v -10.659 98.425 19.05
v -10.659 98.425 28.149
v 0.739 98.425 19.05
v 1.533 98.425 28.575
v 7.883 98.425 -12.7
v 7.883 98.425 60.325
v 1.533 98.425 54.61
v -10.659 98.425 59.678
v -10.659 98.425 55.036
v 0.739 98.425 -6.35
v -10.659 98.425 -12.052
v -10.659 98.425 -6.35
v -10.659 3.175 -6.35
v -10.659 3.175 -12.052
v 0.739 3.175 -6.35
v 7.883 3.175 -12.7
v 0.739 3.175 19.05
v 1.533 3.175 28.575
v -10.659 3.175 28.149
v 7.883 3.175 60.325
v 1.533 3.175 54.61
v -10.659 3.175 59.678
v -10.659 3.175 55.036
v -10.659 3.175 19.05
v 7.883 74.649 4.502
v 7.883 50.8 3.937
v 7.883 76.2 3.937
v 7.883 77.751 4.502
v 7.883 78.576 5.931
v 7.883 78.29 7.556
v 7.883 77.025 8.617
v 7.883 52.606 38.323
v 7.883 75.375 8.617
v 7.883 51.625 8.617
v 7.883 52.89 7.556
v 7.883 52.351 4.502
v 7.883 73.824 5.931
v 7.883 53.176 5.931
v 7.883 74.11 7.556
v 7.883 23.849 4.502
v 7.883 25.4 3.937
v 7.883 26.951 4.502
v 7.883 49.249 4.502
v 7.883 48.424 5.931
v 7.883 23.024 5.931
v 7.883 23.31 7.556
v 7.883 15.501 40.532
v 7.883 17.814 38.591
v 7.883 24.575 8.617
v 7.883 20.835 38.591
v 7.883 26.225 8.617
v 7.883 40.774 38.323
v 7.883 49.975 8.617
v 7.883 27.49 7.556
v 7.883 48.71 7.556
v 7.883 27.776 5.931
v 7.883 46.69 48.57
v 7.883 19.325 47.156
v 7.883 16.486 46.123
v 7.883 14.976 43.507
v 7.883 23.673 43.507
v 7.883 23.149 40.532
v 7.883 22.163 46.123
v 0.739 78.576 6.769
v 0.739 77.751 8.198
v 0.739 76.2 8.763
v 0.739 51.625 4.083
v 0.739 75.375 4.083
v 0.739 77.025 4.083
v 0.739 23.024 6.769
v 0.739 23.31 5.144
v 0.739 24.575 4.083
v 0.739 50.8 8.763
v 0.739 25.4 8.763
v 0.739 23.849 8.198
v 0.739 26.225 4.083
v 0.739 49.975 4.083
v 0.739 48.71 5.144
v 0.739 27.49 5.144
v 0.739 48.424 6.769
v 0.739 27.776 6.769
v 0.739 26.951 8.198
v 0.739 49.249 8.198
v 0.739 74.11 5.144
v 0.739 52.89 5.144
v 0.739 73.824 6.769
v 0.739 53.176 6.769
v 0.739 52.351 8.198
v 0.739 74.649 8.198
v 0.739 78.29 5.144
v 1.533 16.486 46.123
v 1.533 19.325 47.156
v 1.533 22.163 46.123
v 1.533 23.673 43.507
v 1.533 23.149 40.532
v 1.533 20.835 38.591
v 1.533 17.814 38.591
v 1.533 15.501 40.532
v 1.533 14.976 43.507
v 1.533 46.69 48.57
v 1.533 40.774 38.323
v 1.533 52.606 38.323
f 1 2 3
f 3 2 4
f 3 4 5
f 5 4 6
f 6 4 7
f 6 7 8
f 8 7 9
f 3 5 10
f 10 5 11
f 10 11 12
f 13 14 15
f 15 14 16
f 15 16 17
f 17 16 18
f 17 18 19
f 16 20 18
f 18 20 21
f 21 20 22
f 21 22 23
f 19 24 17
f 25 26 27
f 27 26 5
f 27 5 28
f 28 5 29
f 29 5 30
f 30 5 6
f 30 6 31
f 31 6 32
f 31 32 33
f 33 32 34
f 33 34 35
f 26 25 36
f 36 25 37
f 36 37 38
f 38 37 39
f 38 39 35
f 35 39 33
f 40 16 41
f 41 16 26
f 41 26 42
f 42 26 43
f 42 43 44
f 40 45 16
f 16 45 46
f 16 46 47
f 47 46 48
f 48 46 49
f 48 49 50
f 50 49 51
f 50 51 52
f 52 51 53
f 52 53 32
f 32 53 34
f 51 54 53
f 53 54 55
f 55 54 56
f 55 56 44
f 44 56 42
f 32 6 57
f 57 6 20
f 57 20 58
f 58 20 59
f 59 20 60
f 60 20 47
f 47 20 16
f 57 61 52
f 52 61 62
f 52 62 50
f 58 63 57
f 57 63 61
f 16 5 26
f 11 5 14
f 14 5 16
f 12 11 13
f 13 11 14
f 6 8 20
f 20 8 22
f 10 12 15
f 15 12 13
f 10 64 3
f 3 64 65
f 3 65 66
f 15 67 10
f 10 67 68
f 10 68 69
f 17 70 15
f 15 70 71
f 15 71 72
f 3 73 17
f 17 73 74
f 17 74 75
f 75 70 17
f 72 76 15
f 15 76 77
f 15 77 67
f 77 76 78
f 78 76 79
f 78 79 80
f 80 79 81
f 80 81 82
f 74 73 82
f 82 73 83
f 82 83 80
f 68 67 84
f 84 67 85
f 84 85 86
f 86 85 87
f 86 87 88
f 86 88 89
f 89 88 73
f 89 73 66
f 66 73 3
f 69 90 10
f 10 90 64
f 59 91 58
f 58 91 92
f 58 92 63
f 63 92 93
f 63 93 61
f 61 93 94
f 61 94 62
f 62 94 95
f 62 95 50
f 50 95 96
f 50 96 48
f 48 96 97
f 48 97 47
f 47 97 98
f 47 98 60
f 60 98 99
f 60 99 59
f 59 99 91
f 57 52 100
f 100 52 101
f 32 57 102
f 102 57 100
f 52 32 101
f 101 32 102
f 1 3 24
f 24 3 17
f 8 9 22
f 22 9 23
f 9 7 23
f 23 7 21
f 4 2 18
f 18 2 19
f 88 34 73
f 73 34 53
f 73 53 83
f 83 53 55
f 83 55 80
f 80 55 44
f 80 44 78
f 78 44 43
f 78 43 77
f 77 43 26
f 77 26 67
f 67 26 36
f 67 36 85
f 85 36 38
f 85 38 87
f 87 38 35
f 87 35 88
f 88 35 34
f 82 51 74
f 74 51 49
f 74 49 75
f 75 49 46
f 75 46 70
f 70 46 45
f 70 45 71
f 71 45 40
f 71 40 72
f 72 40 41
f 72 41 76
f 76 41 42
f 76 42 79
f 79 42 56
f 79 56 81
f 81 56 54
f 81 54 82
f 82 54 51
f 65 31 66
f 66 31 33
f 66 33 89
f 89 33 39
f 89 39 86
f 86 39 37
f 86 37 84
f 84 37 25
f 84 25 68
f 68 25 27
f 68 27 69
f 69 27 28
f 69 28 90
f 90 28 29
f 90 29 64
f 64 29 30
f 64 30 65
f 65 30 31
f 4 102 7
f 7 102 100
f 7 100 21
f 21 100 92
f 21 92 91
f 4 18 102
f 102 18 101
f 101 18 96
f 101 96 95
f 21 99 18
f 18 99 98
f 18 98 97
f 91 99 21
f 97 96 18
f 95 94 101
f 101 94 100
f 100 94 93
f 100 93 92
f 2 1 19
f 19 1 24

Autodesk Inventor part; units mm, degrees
ref_plane "YZ Plane" through (0, 0, 0) normal (1, 0, 0) x (0, 1, 0)
ref_plane "XZ Plane" through (0, 0, 0) normal (0, 1, 0) x (-1, 0, 0)
ref_plane "XY Plane" through (0, 0, 0) normal (0, 0, 1) x (1, 0, 0)
sketch "Sketch1" plane through (0, 0, 0) normal (0, 1, 0) x (-1, 0, 0)
  line L0 (10.6592, 60.325) -> (-7.8828, 60.325)
  line L1 (-7.8828, 60.325) -> (-7.8828, -12.7)
  line L2 (-7.8828, -12.7) -> (10.6592, -12.7)
  line L3 (10.6592, 54.61) -> (-1.5328, 54.61)
  line L4 (-1.5328, 54.61) -> (-1.5328, 28.575)
  line L5 (-1.5328, 28.575) -> (10.6592, 28.575)
  line L6 (10.6592, 19.05) -> (-1.5328, 19.05)
  line L7 (-1.5328, 19.05) -> (-1.5328, -6.35)
  line L8 (-1.5328, -6.35) -> (10.6592, -6.35)
  line L9 (10.6592, -12.7) -> (10.6592, -6.35)
  line L10 (10.6592, 19.05) -> (10.6592, 28.575)
  line L11 (10.6592, 54.61) -> (10.6592, 60.325)
  point P0 (0, 0)
  dimension "d0" = 18.542
  dimension "d3" = 6.35
  dimension "d4" = 9.525
  dimension "d5" = 5.715
  dimension "d7" = 0
  dimension "d8" = 26.035
  dimension "d9" = 25.4
  dimension "d25" = 0
  dimension "d26" = 0
extrude "Extrusion1" add sketch "Sketch1" along normal blind 101.6
sketch "Sketch2" plane through (1.5328, 0, -6.35) normal (-1, 0, 0) x (0, 0, 1)
  line L0 (0, 0) -> (0, 101.6) projected
  line L1 (0, 0) -> (25.4, 0) projected
  point P0 (6.35, 0)
  point P1 (12.7, 25.4)
  point P2 (12.7, 50.8)
  point P3 (12.7, 76.2)
  dimension "d12" = 12.7
  dimension "d13" = 25.4
  dimension "d14" = 25.4
  dimension "d15" = 0
  dimension "d16" = 0
  dimension "d17" = 25.4
hole "Hole1" at (1.5328, 25.4, 6.35) at (1.5328, 50.8, 6.35) at (1.5328, 76.2, 6.35) direction (1, 0, 0) diameter 4.826 depth 25.4 tip angle 118
sketch "Sketch3" plane through (0, 101.6, 0) normal (0, 1, 0) x (1, 0, 0)
  line L0 (1.5328, -28.575) -> (-10.7917, -28.1446)
  line L1 (-10.7917, -28.1446) -> (-10.7917, -28.575)
  line L2 (-10.6592, -28.575) -> (1.5328, -28.575) projected
  line L3 (-10.7917, -28.575) -> (1.5328, -28.575)
  point P0 (0, 0)
  dimension "d27" = 2
extrude "Extrusion2" cut sketch "Sketch3" against normal blind 111.125
sketch "Sketch4" plane through (0, 101.6, 0) normal (0, 1, 0) x (1, 0, 0)
  line L0 (1.5328, -54.61) -> (-12.9577, -54.61)
  line L1 (-12.9577, -54.61) -> (-12.9577, -55.116)
  line L2 (-12.9577, -55.116) -> (1.5328, -54.61)
  point P0 (0, 0)
  dimension "d30" = 2
extrude "Extrusion3" cut sketch "Sketch4" against normal blind 119.0625
sketch "Sketch5" plane through (0, 101.6, 0) normal (0, 1, 0) x (1, 0, 0)
  line L0 (-10.6592, -60.325) -> (7.8828, -60.325) projected
  line L1 (7.8828, -60.325) -> (-13.0423, -59.5943)
  line L2 (-13.0423, -59.5943) -> (-13.0009, -60.325)
  line L3 (-13.0009, -60.325) -> (7.8828, -60.325)
  point P0 (0, 0)
  dimension "d33" = 2
extrude "Extrusion4" cut sketch "Sketch5" against normal blind 196.85
sketch "Sketch6" plane through (0, 101.6, 0) normal (0, 1, 0) x (1, 0, 0)
  line L0 (7.8828, 12.7) -> (-10.6592, 12.7) projected
  line L1 (7.8828, 12.7) -> (-16.8119, 12.7)
  line L2 (-16.8119, 12.7) -> (-16.8119, 11.8376)
  line L3 (7.8828, -60.325) -> (7.8828, 12.7) projected
  line L4 (-16.8119, 11.8376) -> (7.8828, 12.7)
  point P0 (0, 0)
  dimension "d36" = 2
extrude "Extrusion5" cut sketch "Sketch6" against normal blind 334.9625
sketch "Sketch8" plane through (1.5328, 0, -6.35) normal (-1, 0, 0) x (0, 0, 1)
  line L0 (0, 0) -> (25.4, 0) projected
  circle A0 centre (12.7, 25.4) radius 2.413 projected
  circle A1 centre (12.7, 50.8) radius 2.413 projected
  circle A2 centre (12.7, 76.2) radius 2.413 projected
  line L1 (25.4, 0) -> (25.4, 101.6) projected
  line L2 (0, 0) -> (25.4, 0)
  line L3 (25.4, 0) -> (25.4, 101.6)
  line L4 (25.4, 101.6) -> (0, 101.6)
  line L5 (0, 101.6) -> (0, 0)
  circle A3 centre (12.7, 25.4) radius 2.413
  circle A4 centre (12.7, 50.8) radius 2.413
  circle A5 centre (12.7, 76.2) radius 2.413
  point P0 (6.35, 0)
extrude "Extrusion7" add sketch "Sketch8" along normal blind 0.7937
sketch "Sketch13" plane through (1.5328, 0, 28.575) normal (-1, 0, 0) x (0, 0, 1)
  line L0 (19.995, 46.69) -> (9.7479, 40.7738)
  line L1 (9.7479, 40.7738) -> (9.7479, 52.6062)
  line L2 (9.7479, 52.6062) -> (19.995, 46.69)
  point P0 (-28.575, 0)
  point P1 (13.1636, 46.69)
extrude "Extrusion10" cut sketch "Sketch13" against normal blind 241.3
sketch "Sketch14" plane through (1.5328, 0, 28.575) normal (-1, 0, 0) x (0, 0, 1)
  circle A0 centre (14.1651, 19.3247) radius 4.4158
  point P0 (-28.575, 0)
extrude "Extrusion11" cut sketch "Sketch14" against normal blind 58.7375
sketch "Sketch15" plane through (-10.6592, 0, 19.05) normal (-1, 0, 0) x (0, 0, 1)
  line L0 (-42.6377, -21.5043) -> (50.0762, -21.5043)
  line L1 (50.0762, -21.5043) -> (50.0762, 3.175)
  line L2 (50.0762, 3.175) -> (-42.6377, 3.175)
  line L3 (-42.6377, 3.175) -> (-42.6377, -21.5043)
  line L4 (-43.9771, 109.6049) -> (47.6951, 109.6049)
  line L5 (47.6951, 109.6049) -> (47.6951, 98.425)
  line L6 (47.6951, 98.425) -> (-43.9771, 98.425)
  line L7 (-43.9771, 98.425) -> (-43.9771, 109.6049)
  line L8 (0, 101.6) -> (9.0992, 101.6) projected
  line L9 (0, 0) -> (9.0992, 0) projected
  point P0 (-19.05, 0)
  dimension "d55" = 3.175
  dimension "d56" = 3.175
extrude "Extrusion12" cut sketch "Sketch15" against normal blind 58.7375
equation "\"d0\" = ElvDelWidth"
equation "\"d3\" = ElvDelFrontTabLength"
equation "\"d9\" = ElvBeamWidth"
equation "\"d10\" = ElvDelHeight"
equation "\"ElvBeamWidth\" = 25.4"
equation "\"ElvDelWidth\" = 18.542"
equation "\"ElvDelHeight\" = 101.6"
equation "\"ElvDelFrontTabLength\" = 6.35"
equation "\"ElvDelDepth\" = 6.35"
equation "\"d2\" = ElvDelDepth"
equation "\"ElvCrossBeamLength\" = 304.8"
equation "\"ElvFixedBeamLength\" = 990.6"
equation "\"ElvMiddleBeamLength\" = 990.6"
equation "\"ElvFrontBeamLength\" = 990.6"
equation "\"ElvEndEffectLength\" = 431.8"
equation "\"ElvWallWidth\" = 1.5875"
equation "\"ElvTopBeamLength\" = 457.2"
equation "\"ElvHoleFromFront\" = 25.4"
equation "\"ElvHoleFromMid\" = 38.1"
equation "\"ElvHoleFromFixed\" = 50.8"
equation "\"ElvHoleFromBottom\" = 38.1"
equation "\"ElvRivetPlateLength\" = 76.2"
equation "\"ElvDelMiddleTabLength\" = 6.35"
properties part number "ElvDelV5" material "Acetal Resin, White"
